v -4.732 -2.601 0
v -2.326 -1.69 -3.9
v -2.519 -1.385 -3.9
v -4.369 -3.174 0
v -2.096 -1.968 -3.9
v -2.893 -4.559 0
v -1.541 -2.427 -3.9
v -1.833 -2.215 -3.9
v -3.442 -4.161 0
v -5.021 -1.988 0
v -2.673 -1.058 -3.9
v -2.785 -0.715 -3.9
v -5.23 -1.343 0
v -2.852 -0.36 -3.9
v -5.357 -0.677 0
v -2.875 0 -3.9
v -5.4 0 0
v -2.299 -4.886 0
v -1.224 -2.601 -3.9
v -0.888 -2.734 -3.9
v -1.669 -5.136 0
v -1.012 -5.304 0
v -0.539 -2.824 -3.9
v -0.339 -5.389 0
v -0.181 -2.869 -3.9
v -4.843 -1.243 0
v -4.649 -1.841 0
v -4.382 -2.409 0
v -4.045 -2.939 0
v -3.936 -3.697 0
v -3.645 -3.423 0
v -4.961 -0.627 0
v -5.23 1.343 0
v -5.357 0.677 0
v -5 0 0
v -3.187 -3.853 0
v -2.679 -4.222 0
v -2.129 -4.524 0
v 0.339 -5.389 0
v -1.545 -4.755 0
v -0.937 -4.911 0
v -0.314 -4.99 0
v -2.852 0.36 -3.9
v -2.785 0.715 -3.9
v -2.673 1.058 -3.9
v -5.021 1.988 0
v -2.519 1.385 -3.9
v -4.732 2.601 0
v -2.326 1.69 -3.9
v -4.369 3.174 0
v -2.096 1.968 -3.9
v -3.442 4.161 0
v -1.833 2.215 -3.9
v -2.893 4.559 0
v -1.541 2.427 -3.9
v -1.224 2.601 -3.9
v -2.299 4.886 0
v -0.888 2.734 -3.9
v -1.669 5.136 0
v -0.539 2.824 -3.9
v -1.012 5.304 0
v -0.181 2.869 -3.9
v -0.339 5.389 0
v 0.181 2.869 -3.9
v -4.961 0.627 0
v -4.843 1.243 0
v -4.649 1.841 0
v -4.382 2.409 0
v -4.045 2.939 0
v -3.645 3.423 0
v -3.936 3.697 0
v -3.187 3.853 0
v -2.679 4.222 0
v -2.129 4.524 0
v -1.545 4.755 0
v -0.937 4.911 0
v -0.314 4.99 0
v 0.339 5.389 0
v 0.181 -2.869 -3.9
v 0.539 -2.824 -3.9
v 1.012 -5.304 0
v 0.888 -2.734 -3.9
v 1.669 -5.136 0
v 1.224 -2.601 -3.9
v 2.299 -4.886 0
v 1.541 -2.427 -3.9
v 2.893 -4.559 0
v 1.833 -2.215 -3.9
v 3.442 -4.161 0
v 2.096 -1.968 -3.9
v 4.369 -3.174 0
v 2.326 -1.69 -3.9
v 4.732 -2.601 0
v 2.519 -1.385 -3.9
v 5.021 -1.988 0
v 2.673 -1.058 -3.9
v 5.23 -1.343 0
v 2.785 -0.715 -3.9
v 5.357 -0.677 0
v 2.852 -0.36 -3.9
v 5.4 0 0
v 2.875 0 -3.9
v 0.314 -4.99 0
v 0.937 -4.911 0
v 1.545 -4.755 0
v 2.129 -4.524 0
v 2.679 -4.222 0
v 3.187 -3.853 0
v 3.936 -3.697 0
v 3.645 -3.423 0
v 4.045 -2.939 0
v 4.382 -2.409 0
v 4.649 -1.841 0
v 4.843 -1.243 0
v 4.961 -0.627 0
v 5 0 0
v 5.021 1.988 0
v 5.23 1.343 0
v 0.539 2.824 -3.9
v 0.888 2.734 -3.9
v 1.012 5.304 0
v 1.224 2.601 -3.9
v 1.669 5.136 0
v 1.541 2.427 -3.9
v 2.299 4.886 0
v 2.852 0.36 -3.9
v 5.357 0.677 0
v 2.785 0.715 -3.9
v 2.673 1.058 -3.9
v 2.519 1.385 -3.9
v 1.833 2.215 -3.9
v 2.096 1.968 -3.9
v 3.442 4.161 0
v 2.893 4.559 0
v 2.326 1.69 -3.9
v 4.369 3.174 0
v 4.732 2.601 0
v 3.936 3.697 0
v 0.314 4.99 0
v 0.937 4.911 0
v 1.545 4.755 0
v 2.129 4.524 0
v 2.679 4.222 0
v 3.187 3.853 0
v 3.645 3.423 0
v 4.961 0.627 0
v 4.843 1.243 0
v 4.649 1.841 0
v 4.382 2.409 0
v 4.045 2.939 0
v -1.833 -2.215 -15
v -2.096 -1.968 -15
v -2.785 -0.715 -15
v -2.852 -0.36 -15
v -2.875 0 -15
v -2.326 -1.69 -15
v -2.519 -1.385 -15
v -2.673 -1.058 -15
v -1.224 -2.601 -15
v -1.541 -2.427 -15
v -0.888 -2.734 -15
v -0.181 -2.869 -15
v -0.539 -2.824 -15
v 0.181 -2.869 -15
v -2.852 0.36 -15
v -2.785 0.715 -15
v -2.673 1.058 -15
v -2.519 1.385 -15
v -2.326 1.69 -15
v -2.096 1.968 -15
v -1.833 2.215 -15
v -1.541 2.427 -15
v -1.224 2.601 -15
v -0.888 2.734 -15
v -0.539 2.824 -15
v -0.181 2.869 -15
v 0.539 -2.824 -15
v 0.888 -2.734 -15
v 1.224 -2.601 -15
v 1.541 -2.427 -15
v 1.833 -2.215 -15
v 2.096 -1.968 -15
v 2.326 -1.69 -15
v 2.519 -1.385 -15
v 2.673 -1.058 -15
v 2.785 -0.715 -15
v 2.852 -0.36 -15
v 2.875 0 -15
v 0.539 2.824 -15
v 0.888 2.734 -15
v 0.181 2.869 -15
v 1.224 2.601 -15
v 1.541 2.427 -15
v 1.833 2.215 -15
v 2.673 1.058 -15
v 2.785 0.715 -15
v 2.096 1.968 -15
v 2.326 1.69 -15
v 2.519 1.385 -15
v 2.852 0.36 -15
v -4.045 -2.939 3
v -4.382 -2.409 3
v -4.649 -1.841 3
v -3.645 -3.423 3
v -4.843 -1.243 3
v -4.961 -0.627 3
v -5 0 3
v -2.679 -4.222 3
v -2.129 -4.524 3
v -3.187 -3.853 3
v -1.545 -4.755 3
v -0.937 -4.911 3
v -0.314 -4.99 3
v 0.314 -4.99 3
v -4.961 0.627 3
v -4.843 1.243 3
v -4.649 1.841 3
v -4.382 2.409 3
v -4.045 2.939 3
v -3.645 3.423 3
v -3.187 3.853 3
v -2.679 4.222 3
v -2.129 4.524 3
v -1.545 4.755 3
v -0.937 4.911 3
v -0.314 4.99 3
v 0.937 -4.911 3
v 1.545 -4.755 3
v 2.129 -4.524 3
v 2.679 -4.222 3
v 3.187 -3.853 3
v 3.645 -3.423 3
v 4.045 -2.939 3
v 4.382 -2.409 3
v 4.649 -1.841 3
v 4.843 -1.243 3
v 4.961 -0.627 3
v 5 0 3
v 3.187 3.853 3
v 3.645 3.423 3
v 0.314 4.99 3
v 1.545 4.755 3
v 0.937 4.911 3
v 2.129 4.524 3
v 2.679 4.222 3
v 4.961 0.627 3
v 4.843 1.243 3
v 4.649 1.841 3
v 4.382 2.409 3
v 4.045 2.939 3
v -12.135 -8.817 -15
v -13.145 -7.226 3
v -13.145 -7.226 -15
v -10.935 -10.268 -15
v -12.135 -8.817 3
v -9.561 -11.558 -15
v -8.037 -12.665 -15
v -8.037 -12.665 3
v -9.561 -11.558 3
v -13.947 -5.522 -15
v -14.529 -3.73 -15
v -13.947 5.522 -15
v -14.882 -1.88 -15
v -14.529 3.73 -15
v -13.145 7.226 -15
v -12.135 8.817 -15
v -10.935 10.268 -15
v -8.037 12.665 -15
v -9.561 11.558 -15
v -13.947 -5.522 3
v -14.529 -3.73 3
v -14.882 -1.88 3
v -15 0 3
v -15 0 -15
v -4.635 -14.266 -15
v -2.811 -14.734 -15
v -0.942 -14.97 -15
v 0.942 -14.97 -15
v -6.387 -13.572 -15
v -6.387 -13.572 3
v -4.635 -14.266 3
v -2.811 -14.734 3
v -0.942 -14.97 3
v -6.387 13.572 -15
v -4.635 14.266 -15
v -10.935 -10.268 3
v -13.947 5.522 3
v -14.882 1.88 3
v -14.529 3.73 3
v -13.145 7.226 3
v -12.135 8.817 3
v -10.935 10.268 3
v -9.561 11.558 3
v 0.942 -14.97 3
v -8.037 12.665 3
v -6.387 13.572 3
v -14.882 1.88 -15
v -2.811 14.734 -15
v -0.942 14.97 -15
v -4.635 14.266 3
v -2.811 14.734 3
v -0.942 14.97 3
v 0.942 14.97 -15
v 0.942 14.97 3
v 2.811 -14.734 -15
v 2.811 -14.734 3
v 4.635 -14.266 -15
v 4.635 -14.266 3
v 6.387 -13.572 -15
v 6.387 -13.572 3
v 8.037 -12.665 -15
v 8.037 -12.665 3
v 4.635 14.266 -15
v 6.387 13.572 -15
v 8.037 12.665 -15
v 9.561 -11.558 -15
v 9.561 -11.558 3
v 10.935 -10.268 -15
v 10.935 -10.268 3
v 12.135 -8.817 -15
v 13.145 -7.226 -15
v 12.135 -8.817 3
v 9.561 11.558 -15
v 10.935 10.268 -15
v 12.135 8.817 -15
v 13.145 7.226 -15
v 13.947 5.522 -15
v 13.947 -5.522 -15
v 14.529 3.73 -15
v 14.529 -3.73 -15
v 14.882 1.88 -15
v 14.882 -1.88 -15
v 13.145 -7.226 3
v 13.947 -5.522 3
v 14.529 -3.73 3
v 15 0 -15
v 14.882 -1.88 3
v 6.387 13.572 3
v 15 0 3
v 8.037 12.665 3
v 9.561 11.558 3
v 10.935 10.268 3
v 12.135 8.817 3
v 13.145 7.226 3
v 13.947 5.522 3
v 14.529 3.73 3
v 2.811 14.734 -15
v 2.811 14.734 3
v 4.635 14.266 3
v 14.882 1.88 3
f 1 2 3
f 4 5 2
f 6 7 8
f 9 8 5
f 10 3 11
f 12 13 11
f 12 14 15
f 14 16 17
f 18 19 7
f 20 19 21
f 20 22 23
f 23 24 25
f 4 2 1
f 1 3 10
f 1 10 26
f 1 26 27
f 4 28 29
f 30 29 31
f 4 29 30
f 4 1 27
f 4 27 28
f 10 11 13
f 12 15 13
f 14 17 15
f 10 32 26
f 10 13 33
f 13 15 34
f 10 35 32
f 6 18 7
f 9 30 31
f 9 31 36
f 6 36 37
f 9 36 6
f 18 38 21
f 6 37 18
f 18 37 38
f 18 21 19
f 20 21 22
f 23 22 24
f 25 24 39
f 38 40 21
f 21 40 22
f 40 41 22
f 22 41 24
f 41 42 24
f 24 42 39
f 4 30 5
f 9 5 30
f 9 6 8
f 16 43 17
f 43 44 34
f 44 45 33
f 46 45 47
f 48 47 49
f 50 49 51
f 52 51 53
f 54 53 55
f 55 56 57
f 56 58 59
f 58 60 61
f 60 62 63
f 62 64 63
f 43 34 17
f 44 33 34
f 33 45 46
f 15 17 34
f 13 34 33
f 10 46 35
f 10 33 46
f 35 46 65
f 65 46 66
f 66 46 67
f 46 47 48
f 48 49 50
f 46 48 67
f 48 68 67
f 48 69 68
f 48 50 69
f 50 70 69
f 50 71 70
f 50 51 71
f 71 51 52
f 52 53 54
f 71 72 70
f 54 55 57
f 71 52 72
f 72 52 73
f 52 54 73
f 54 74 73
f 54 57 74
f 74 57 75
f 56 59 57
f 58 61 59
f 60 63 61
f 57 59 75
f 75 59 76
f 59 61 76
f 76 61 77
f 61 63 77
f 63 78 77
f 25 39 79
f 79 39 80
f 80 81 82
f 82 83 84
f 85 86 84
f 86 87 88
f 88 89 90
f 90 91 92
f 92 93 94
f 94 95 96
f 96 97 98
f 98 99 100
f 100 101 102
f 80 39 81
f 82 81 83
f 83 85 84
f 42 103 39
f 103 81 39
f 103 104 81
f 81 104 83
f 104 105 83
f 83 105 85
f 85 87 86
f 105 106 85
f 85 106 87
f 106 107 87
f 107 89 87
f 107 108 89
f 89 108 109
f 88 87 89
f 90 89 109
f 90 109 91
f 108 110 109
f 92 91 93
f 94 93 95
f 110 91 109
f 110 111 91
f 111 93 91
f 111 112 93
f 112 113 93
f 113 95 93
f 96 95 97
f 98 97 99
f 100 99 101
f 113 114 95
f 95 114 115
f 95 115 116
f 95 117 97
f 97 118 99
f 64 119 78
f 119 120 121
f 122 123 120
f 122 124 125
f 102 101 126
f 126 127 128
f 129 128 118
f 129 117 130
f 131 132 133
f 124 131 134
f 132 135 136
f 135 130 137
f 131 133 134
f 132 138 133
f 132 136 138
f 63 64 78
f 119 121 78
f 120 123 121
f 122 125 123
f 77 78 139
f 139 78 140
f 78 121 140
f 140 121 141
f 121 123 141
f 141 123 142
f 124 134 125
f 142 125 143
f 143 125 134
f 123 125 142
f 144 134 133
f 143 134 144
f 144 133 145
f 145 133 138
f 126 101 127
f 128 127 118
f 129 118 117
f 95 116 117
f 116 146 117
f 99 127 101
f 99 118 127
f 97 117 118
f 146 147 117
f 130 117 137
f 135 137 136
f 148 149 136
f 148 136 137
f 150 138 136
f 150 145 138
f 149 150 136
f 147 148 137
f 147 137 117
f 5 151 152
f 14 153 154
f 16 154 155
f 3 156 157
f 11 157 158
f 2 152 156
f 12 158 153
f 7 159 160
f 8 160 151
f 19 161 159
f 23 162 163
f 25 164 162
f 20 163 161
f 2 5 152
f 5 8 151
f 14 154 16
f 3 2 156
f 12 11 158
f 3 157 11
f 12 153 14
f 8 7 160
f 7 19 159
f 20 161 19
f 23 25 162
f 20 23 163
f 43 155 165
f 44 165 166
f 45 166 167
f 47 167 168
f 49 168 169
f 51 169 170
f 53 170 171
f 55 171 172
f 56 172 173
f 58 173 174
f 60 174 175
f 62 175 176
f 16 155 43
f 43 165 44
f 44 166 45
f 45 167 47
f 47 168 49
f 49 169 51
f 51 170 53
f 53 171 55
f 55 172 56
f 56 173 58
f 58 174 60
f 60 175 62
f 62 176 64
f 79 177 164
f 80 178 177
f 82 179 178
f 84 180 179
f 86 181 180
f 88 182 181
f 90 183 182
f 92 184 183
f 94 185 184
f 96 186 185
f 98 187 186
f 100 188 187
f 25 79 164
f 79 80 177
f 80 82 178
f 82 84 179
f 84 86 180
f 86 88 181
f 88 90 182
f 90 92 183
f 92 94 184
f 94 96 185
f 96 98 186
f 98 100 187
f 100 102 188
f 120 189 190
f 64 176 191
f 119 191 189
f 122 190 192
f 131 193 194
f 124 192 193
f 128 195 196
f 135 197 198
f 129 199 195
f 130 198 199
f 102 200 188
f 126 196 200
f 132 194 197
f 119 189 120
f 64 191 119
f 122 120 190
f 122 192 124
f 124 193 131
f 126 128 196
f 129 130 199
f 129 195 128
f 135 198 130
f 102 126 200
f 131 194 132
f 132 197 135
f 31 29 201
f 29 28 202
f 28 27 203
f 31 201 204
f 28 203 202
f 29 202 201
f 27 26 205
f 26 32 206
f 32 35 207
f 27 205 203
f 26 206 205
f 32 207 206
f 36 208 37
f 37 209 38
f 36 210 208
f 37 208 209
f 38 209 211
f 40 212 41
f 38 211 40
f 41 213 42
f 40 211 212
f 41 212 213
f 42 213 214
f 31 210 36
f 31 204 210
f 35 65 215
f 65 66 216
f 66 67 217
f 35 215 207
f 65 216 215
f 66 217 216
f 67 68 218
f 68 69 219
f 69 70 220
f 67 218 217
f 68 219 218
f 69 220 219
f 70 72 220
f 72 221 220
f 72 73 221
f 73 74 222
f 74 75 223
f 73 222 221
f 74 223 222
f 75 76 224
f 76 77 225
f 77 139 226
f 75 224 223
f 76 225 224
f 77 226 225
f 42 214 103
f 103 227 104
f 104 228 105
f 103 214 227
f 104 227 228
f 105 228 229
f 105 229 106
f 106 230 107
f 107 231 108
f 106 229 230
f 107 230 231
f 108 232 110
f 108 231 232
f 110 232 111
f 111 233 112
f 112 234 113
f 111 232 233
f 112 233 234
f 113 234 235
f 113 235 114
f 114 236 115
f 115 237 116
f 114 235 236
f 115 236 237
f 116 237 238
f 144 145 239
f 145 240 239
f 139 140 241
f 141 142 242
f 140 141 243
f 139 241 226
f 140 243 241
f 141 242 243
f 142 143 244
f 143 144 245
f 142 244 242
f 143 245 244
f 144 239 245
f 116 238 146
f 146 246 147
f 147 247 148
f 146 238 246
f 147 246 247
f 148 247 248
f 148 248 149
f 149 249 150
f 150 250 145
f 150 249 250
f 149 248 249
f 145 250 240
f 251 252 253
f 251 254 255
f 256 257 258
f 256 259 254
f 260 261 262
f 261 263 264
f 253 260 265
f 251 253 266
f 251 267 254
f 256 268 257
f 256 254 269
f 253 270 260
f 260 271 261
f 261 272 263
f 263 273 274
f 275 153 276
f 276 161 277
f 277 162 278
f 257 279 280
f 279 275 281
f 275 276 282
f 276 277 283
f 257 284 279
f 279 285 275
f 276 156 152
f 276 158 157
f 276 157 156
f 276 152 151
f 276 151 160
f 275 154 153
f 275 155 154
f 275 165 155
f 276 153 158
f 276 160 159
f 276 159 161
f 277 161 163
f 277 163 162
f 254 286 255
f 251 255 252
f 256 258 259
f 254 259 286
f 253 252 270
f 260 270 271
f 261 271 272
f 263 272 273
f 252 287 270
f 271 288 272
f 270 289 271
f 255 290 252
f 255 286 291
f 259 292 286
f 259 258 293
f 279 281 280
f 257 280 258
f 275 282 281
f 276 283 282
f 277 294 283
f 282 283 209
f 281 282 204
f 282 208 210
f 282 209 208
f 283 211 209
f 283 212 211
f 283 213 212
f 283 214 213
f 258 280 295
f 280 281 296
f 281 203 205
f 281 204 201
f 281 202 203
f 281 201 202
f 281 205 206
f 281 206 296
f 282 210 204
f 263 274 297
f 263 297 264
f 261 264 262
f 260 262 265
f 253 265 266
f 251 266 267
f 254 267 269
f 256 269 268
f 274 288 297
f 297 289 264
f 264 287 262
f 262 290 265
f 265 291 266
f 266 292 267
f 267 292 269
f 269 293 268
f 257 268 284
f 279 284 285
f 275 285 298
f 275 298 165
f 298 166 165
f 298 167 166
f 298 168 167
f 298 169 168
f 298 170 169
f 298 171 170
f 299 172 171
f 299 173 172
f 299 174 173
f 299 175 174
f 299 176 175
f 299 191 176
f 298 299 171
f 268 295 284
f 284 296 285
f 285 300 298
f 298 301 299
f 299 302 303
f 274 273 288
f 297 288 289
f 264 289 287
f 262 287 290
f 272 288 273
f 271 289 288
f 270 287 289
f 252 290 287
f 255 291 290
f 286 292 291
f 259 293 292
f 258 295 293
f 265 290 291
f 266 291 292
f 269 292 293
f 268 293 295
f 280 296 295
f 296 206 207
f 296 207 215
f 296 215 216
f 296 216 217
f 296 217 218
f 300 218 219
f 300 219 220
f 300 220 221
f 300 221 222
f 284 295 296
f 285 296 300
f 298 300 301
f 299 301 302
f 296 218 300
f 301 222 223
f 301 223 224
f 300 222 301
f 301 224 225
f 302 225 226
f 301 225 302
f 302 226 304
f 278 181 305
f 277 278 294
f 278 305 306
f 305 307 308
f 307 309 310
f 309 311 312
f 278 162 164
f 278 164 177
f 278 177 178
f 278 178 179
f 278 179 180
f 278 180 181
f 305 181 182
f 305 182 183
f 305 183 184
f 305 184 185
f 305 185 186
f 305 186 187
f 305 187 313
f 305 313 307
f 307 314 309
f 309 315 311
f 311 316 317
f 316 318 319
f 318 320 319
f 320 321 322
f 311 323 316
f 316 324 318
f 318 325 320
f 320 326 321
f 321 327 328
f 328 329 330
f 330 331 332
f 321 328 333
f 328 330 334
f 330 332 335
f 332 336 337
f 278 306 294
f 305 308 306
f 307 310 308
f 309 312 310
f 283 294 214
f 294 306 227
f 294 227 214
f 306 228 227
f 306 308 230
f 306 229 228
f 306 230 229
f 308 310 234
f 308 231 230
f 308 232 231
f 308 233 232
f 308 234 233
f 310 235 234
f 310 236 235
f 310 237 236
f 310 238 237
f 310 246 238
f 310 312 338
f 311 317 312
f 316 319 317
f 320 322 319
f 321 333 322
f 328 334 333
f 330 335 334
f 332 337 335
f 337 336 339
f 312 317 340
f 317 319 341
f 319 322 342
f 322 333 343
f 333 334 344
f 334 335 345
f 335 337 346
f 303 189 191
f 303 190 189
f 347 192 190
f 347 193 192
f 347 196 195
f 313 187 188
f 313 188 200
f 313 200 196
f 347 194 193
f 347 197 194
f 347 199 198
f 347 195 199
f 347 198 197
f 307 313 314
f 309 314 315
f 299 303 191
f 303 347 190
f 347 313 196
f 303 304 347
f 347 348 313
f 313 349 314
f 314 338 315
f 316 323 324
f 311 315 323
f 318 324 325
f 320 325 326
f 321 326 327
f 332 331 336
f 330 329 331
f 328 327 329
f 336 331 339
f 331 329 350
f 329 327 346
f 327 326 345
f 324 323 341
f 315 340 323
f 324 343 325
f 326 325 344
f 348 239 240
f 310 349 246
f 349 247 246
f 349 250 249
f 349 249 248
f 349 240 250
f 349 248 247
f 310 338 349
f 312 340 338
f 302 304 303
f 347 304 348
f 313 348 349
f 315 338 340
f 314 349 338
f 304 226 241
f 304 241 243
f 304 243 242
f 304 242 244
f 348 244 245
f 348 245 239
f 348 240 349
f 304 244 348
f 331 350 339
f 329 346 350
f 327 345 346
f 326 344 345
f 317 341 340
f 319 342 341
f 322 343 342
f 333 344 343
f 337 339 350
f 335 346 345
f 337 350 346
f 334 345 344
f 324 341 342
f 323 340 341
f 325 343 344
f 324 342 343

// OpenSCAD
$fn = 50;

difference() {
	union() {
		translate(v = [0, 0, -15.0]) {
			cylinder(h = 18, r = 15.0);
		}
	}
	union() {
		translate(v = [0, 0, 0]) {
			rotate(a = [0, 0, 0]) {
				difference() {
					union() {
						translate(v = [0, 0, -18.0]) {
							cylinder(h = 18, r = 2.6);
						}
						translate(v = [0, 0, -3.9]) {
							cylinder(h = 3.9, r1 = 2.875, r2 = 5.4);
						}
						translate(v = [0, 0, -18.0]) {
							cylinder(h = 18, r = 2.875);
						}
						translate(v = [0, 0, -18.0]) {
							cylinder(h = 18, r = 2.6);
						}
					}
					union();
				}
			}
		}
		#cylinder(h = 3, r = 5.0);
	}
}
